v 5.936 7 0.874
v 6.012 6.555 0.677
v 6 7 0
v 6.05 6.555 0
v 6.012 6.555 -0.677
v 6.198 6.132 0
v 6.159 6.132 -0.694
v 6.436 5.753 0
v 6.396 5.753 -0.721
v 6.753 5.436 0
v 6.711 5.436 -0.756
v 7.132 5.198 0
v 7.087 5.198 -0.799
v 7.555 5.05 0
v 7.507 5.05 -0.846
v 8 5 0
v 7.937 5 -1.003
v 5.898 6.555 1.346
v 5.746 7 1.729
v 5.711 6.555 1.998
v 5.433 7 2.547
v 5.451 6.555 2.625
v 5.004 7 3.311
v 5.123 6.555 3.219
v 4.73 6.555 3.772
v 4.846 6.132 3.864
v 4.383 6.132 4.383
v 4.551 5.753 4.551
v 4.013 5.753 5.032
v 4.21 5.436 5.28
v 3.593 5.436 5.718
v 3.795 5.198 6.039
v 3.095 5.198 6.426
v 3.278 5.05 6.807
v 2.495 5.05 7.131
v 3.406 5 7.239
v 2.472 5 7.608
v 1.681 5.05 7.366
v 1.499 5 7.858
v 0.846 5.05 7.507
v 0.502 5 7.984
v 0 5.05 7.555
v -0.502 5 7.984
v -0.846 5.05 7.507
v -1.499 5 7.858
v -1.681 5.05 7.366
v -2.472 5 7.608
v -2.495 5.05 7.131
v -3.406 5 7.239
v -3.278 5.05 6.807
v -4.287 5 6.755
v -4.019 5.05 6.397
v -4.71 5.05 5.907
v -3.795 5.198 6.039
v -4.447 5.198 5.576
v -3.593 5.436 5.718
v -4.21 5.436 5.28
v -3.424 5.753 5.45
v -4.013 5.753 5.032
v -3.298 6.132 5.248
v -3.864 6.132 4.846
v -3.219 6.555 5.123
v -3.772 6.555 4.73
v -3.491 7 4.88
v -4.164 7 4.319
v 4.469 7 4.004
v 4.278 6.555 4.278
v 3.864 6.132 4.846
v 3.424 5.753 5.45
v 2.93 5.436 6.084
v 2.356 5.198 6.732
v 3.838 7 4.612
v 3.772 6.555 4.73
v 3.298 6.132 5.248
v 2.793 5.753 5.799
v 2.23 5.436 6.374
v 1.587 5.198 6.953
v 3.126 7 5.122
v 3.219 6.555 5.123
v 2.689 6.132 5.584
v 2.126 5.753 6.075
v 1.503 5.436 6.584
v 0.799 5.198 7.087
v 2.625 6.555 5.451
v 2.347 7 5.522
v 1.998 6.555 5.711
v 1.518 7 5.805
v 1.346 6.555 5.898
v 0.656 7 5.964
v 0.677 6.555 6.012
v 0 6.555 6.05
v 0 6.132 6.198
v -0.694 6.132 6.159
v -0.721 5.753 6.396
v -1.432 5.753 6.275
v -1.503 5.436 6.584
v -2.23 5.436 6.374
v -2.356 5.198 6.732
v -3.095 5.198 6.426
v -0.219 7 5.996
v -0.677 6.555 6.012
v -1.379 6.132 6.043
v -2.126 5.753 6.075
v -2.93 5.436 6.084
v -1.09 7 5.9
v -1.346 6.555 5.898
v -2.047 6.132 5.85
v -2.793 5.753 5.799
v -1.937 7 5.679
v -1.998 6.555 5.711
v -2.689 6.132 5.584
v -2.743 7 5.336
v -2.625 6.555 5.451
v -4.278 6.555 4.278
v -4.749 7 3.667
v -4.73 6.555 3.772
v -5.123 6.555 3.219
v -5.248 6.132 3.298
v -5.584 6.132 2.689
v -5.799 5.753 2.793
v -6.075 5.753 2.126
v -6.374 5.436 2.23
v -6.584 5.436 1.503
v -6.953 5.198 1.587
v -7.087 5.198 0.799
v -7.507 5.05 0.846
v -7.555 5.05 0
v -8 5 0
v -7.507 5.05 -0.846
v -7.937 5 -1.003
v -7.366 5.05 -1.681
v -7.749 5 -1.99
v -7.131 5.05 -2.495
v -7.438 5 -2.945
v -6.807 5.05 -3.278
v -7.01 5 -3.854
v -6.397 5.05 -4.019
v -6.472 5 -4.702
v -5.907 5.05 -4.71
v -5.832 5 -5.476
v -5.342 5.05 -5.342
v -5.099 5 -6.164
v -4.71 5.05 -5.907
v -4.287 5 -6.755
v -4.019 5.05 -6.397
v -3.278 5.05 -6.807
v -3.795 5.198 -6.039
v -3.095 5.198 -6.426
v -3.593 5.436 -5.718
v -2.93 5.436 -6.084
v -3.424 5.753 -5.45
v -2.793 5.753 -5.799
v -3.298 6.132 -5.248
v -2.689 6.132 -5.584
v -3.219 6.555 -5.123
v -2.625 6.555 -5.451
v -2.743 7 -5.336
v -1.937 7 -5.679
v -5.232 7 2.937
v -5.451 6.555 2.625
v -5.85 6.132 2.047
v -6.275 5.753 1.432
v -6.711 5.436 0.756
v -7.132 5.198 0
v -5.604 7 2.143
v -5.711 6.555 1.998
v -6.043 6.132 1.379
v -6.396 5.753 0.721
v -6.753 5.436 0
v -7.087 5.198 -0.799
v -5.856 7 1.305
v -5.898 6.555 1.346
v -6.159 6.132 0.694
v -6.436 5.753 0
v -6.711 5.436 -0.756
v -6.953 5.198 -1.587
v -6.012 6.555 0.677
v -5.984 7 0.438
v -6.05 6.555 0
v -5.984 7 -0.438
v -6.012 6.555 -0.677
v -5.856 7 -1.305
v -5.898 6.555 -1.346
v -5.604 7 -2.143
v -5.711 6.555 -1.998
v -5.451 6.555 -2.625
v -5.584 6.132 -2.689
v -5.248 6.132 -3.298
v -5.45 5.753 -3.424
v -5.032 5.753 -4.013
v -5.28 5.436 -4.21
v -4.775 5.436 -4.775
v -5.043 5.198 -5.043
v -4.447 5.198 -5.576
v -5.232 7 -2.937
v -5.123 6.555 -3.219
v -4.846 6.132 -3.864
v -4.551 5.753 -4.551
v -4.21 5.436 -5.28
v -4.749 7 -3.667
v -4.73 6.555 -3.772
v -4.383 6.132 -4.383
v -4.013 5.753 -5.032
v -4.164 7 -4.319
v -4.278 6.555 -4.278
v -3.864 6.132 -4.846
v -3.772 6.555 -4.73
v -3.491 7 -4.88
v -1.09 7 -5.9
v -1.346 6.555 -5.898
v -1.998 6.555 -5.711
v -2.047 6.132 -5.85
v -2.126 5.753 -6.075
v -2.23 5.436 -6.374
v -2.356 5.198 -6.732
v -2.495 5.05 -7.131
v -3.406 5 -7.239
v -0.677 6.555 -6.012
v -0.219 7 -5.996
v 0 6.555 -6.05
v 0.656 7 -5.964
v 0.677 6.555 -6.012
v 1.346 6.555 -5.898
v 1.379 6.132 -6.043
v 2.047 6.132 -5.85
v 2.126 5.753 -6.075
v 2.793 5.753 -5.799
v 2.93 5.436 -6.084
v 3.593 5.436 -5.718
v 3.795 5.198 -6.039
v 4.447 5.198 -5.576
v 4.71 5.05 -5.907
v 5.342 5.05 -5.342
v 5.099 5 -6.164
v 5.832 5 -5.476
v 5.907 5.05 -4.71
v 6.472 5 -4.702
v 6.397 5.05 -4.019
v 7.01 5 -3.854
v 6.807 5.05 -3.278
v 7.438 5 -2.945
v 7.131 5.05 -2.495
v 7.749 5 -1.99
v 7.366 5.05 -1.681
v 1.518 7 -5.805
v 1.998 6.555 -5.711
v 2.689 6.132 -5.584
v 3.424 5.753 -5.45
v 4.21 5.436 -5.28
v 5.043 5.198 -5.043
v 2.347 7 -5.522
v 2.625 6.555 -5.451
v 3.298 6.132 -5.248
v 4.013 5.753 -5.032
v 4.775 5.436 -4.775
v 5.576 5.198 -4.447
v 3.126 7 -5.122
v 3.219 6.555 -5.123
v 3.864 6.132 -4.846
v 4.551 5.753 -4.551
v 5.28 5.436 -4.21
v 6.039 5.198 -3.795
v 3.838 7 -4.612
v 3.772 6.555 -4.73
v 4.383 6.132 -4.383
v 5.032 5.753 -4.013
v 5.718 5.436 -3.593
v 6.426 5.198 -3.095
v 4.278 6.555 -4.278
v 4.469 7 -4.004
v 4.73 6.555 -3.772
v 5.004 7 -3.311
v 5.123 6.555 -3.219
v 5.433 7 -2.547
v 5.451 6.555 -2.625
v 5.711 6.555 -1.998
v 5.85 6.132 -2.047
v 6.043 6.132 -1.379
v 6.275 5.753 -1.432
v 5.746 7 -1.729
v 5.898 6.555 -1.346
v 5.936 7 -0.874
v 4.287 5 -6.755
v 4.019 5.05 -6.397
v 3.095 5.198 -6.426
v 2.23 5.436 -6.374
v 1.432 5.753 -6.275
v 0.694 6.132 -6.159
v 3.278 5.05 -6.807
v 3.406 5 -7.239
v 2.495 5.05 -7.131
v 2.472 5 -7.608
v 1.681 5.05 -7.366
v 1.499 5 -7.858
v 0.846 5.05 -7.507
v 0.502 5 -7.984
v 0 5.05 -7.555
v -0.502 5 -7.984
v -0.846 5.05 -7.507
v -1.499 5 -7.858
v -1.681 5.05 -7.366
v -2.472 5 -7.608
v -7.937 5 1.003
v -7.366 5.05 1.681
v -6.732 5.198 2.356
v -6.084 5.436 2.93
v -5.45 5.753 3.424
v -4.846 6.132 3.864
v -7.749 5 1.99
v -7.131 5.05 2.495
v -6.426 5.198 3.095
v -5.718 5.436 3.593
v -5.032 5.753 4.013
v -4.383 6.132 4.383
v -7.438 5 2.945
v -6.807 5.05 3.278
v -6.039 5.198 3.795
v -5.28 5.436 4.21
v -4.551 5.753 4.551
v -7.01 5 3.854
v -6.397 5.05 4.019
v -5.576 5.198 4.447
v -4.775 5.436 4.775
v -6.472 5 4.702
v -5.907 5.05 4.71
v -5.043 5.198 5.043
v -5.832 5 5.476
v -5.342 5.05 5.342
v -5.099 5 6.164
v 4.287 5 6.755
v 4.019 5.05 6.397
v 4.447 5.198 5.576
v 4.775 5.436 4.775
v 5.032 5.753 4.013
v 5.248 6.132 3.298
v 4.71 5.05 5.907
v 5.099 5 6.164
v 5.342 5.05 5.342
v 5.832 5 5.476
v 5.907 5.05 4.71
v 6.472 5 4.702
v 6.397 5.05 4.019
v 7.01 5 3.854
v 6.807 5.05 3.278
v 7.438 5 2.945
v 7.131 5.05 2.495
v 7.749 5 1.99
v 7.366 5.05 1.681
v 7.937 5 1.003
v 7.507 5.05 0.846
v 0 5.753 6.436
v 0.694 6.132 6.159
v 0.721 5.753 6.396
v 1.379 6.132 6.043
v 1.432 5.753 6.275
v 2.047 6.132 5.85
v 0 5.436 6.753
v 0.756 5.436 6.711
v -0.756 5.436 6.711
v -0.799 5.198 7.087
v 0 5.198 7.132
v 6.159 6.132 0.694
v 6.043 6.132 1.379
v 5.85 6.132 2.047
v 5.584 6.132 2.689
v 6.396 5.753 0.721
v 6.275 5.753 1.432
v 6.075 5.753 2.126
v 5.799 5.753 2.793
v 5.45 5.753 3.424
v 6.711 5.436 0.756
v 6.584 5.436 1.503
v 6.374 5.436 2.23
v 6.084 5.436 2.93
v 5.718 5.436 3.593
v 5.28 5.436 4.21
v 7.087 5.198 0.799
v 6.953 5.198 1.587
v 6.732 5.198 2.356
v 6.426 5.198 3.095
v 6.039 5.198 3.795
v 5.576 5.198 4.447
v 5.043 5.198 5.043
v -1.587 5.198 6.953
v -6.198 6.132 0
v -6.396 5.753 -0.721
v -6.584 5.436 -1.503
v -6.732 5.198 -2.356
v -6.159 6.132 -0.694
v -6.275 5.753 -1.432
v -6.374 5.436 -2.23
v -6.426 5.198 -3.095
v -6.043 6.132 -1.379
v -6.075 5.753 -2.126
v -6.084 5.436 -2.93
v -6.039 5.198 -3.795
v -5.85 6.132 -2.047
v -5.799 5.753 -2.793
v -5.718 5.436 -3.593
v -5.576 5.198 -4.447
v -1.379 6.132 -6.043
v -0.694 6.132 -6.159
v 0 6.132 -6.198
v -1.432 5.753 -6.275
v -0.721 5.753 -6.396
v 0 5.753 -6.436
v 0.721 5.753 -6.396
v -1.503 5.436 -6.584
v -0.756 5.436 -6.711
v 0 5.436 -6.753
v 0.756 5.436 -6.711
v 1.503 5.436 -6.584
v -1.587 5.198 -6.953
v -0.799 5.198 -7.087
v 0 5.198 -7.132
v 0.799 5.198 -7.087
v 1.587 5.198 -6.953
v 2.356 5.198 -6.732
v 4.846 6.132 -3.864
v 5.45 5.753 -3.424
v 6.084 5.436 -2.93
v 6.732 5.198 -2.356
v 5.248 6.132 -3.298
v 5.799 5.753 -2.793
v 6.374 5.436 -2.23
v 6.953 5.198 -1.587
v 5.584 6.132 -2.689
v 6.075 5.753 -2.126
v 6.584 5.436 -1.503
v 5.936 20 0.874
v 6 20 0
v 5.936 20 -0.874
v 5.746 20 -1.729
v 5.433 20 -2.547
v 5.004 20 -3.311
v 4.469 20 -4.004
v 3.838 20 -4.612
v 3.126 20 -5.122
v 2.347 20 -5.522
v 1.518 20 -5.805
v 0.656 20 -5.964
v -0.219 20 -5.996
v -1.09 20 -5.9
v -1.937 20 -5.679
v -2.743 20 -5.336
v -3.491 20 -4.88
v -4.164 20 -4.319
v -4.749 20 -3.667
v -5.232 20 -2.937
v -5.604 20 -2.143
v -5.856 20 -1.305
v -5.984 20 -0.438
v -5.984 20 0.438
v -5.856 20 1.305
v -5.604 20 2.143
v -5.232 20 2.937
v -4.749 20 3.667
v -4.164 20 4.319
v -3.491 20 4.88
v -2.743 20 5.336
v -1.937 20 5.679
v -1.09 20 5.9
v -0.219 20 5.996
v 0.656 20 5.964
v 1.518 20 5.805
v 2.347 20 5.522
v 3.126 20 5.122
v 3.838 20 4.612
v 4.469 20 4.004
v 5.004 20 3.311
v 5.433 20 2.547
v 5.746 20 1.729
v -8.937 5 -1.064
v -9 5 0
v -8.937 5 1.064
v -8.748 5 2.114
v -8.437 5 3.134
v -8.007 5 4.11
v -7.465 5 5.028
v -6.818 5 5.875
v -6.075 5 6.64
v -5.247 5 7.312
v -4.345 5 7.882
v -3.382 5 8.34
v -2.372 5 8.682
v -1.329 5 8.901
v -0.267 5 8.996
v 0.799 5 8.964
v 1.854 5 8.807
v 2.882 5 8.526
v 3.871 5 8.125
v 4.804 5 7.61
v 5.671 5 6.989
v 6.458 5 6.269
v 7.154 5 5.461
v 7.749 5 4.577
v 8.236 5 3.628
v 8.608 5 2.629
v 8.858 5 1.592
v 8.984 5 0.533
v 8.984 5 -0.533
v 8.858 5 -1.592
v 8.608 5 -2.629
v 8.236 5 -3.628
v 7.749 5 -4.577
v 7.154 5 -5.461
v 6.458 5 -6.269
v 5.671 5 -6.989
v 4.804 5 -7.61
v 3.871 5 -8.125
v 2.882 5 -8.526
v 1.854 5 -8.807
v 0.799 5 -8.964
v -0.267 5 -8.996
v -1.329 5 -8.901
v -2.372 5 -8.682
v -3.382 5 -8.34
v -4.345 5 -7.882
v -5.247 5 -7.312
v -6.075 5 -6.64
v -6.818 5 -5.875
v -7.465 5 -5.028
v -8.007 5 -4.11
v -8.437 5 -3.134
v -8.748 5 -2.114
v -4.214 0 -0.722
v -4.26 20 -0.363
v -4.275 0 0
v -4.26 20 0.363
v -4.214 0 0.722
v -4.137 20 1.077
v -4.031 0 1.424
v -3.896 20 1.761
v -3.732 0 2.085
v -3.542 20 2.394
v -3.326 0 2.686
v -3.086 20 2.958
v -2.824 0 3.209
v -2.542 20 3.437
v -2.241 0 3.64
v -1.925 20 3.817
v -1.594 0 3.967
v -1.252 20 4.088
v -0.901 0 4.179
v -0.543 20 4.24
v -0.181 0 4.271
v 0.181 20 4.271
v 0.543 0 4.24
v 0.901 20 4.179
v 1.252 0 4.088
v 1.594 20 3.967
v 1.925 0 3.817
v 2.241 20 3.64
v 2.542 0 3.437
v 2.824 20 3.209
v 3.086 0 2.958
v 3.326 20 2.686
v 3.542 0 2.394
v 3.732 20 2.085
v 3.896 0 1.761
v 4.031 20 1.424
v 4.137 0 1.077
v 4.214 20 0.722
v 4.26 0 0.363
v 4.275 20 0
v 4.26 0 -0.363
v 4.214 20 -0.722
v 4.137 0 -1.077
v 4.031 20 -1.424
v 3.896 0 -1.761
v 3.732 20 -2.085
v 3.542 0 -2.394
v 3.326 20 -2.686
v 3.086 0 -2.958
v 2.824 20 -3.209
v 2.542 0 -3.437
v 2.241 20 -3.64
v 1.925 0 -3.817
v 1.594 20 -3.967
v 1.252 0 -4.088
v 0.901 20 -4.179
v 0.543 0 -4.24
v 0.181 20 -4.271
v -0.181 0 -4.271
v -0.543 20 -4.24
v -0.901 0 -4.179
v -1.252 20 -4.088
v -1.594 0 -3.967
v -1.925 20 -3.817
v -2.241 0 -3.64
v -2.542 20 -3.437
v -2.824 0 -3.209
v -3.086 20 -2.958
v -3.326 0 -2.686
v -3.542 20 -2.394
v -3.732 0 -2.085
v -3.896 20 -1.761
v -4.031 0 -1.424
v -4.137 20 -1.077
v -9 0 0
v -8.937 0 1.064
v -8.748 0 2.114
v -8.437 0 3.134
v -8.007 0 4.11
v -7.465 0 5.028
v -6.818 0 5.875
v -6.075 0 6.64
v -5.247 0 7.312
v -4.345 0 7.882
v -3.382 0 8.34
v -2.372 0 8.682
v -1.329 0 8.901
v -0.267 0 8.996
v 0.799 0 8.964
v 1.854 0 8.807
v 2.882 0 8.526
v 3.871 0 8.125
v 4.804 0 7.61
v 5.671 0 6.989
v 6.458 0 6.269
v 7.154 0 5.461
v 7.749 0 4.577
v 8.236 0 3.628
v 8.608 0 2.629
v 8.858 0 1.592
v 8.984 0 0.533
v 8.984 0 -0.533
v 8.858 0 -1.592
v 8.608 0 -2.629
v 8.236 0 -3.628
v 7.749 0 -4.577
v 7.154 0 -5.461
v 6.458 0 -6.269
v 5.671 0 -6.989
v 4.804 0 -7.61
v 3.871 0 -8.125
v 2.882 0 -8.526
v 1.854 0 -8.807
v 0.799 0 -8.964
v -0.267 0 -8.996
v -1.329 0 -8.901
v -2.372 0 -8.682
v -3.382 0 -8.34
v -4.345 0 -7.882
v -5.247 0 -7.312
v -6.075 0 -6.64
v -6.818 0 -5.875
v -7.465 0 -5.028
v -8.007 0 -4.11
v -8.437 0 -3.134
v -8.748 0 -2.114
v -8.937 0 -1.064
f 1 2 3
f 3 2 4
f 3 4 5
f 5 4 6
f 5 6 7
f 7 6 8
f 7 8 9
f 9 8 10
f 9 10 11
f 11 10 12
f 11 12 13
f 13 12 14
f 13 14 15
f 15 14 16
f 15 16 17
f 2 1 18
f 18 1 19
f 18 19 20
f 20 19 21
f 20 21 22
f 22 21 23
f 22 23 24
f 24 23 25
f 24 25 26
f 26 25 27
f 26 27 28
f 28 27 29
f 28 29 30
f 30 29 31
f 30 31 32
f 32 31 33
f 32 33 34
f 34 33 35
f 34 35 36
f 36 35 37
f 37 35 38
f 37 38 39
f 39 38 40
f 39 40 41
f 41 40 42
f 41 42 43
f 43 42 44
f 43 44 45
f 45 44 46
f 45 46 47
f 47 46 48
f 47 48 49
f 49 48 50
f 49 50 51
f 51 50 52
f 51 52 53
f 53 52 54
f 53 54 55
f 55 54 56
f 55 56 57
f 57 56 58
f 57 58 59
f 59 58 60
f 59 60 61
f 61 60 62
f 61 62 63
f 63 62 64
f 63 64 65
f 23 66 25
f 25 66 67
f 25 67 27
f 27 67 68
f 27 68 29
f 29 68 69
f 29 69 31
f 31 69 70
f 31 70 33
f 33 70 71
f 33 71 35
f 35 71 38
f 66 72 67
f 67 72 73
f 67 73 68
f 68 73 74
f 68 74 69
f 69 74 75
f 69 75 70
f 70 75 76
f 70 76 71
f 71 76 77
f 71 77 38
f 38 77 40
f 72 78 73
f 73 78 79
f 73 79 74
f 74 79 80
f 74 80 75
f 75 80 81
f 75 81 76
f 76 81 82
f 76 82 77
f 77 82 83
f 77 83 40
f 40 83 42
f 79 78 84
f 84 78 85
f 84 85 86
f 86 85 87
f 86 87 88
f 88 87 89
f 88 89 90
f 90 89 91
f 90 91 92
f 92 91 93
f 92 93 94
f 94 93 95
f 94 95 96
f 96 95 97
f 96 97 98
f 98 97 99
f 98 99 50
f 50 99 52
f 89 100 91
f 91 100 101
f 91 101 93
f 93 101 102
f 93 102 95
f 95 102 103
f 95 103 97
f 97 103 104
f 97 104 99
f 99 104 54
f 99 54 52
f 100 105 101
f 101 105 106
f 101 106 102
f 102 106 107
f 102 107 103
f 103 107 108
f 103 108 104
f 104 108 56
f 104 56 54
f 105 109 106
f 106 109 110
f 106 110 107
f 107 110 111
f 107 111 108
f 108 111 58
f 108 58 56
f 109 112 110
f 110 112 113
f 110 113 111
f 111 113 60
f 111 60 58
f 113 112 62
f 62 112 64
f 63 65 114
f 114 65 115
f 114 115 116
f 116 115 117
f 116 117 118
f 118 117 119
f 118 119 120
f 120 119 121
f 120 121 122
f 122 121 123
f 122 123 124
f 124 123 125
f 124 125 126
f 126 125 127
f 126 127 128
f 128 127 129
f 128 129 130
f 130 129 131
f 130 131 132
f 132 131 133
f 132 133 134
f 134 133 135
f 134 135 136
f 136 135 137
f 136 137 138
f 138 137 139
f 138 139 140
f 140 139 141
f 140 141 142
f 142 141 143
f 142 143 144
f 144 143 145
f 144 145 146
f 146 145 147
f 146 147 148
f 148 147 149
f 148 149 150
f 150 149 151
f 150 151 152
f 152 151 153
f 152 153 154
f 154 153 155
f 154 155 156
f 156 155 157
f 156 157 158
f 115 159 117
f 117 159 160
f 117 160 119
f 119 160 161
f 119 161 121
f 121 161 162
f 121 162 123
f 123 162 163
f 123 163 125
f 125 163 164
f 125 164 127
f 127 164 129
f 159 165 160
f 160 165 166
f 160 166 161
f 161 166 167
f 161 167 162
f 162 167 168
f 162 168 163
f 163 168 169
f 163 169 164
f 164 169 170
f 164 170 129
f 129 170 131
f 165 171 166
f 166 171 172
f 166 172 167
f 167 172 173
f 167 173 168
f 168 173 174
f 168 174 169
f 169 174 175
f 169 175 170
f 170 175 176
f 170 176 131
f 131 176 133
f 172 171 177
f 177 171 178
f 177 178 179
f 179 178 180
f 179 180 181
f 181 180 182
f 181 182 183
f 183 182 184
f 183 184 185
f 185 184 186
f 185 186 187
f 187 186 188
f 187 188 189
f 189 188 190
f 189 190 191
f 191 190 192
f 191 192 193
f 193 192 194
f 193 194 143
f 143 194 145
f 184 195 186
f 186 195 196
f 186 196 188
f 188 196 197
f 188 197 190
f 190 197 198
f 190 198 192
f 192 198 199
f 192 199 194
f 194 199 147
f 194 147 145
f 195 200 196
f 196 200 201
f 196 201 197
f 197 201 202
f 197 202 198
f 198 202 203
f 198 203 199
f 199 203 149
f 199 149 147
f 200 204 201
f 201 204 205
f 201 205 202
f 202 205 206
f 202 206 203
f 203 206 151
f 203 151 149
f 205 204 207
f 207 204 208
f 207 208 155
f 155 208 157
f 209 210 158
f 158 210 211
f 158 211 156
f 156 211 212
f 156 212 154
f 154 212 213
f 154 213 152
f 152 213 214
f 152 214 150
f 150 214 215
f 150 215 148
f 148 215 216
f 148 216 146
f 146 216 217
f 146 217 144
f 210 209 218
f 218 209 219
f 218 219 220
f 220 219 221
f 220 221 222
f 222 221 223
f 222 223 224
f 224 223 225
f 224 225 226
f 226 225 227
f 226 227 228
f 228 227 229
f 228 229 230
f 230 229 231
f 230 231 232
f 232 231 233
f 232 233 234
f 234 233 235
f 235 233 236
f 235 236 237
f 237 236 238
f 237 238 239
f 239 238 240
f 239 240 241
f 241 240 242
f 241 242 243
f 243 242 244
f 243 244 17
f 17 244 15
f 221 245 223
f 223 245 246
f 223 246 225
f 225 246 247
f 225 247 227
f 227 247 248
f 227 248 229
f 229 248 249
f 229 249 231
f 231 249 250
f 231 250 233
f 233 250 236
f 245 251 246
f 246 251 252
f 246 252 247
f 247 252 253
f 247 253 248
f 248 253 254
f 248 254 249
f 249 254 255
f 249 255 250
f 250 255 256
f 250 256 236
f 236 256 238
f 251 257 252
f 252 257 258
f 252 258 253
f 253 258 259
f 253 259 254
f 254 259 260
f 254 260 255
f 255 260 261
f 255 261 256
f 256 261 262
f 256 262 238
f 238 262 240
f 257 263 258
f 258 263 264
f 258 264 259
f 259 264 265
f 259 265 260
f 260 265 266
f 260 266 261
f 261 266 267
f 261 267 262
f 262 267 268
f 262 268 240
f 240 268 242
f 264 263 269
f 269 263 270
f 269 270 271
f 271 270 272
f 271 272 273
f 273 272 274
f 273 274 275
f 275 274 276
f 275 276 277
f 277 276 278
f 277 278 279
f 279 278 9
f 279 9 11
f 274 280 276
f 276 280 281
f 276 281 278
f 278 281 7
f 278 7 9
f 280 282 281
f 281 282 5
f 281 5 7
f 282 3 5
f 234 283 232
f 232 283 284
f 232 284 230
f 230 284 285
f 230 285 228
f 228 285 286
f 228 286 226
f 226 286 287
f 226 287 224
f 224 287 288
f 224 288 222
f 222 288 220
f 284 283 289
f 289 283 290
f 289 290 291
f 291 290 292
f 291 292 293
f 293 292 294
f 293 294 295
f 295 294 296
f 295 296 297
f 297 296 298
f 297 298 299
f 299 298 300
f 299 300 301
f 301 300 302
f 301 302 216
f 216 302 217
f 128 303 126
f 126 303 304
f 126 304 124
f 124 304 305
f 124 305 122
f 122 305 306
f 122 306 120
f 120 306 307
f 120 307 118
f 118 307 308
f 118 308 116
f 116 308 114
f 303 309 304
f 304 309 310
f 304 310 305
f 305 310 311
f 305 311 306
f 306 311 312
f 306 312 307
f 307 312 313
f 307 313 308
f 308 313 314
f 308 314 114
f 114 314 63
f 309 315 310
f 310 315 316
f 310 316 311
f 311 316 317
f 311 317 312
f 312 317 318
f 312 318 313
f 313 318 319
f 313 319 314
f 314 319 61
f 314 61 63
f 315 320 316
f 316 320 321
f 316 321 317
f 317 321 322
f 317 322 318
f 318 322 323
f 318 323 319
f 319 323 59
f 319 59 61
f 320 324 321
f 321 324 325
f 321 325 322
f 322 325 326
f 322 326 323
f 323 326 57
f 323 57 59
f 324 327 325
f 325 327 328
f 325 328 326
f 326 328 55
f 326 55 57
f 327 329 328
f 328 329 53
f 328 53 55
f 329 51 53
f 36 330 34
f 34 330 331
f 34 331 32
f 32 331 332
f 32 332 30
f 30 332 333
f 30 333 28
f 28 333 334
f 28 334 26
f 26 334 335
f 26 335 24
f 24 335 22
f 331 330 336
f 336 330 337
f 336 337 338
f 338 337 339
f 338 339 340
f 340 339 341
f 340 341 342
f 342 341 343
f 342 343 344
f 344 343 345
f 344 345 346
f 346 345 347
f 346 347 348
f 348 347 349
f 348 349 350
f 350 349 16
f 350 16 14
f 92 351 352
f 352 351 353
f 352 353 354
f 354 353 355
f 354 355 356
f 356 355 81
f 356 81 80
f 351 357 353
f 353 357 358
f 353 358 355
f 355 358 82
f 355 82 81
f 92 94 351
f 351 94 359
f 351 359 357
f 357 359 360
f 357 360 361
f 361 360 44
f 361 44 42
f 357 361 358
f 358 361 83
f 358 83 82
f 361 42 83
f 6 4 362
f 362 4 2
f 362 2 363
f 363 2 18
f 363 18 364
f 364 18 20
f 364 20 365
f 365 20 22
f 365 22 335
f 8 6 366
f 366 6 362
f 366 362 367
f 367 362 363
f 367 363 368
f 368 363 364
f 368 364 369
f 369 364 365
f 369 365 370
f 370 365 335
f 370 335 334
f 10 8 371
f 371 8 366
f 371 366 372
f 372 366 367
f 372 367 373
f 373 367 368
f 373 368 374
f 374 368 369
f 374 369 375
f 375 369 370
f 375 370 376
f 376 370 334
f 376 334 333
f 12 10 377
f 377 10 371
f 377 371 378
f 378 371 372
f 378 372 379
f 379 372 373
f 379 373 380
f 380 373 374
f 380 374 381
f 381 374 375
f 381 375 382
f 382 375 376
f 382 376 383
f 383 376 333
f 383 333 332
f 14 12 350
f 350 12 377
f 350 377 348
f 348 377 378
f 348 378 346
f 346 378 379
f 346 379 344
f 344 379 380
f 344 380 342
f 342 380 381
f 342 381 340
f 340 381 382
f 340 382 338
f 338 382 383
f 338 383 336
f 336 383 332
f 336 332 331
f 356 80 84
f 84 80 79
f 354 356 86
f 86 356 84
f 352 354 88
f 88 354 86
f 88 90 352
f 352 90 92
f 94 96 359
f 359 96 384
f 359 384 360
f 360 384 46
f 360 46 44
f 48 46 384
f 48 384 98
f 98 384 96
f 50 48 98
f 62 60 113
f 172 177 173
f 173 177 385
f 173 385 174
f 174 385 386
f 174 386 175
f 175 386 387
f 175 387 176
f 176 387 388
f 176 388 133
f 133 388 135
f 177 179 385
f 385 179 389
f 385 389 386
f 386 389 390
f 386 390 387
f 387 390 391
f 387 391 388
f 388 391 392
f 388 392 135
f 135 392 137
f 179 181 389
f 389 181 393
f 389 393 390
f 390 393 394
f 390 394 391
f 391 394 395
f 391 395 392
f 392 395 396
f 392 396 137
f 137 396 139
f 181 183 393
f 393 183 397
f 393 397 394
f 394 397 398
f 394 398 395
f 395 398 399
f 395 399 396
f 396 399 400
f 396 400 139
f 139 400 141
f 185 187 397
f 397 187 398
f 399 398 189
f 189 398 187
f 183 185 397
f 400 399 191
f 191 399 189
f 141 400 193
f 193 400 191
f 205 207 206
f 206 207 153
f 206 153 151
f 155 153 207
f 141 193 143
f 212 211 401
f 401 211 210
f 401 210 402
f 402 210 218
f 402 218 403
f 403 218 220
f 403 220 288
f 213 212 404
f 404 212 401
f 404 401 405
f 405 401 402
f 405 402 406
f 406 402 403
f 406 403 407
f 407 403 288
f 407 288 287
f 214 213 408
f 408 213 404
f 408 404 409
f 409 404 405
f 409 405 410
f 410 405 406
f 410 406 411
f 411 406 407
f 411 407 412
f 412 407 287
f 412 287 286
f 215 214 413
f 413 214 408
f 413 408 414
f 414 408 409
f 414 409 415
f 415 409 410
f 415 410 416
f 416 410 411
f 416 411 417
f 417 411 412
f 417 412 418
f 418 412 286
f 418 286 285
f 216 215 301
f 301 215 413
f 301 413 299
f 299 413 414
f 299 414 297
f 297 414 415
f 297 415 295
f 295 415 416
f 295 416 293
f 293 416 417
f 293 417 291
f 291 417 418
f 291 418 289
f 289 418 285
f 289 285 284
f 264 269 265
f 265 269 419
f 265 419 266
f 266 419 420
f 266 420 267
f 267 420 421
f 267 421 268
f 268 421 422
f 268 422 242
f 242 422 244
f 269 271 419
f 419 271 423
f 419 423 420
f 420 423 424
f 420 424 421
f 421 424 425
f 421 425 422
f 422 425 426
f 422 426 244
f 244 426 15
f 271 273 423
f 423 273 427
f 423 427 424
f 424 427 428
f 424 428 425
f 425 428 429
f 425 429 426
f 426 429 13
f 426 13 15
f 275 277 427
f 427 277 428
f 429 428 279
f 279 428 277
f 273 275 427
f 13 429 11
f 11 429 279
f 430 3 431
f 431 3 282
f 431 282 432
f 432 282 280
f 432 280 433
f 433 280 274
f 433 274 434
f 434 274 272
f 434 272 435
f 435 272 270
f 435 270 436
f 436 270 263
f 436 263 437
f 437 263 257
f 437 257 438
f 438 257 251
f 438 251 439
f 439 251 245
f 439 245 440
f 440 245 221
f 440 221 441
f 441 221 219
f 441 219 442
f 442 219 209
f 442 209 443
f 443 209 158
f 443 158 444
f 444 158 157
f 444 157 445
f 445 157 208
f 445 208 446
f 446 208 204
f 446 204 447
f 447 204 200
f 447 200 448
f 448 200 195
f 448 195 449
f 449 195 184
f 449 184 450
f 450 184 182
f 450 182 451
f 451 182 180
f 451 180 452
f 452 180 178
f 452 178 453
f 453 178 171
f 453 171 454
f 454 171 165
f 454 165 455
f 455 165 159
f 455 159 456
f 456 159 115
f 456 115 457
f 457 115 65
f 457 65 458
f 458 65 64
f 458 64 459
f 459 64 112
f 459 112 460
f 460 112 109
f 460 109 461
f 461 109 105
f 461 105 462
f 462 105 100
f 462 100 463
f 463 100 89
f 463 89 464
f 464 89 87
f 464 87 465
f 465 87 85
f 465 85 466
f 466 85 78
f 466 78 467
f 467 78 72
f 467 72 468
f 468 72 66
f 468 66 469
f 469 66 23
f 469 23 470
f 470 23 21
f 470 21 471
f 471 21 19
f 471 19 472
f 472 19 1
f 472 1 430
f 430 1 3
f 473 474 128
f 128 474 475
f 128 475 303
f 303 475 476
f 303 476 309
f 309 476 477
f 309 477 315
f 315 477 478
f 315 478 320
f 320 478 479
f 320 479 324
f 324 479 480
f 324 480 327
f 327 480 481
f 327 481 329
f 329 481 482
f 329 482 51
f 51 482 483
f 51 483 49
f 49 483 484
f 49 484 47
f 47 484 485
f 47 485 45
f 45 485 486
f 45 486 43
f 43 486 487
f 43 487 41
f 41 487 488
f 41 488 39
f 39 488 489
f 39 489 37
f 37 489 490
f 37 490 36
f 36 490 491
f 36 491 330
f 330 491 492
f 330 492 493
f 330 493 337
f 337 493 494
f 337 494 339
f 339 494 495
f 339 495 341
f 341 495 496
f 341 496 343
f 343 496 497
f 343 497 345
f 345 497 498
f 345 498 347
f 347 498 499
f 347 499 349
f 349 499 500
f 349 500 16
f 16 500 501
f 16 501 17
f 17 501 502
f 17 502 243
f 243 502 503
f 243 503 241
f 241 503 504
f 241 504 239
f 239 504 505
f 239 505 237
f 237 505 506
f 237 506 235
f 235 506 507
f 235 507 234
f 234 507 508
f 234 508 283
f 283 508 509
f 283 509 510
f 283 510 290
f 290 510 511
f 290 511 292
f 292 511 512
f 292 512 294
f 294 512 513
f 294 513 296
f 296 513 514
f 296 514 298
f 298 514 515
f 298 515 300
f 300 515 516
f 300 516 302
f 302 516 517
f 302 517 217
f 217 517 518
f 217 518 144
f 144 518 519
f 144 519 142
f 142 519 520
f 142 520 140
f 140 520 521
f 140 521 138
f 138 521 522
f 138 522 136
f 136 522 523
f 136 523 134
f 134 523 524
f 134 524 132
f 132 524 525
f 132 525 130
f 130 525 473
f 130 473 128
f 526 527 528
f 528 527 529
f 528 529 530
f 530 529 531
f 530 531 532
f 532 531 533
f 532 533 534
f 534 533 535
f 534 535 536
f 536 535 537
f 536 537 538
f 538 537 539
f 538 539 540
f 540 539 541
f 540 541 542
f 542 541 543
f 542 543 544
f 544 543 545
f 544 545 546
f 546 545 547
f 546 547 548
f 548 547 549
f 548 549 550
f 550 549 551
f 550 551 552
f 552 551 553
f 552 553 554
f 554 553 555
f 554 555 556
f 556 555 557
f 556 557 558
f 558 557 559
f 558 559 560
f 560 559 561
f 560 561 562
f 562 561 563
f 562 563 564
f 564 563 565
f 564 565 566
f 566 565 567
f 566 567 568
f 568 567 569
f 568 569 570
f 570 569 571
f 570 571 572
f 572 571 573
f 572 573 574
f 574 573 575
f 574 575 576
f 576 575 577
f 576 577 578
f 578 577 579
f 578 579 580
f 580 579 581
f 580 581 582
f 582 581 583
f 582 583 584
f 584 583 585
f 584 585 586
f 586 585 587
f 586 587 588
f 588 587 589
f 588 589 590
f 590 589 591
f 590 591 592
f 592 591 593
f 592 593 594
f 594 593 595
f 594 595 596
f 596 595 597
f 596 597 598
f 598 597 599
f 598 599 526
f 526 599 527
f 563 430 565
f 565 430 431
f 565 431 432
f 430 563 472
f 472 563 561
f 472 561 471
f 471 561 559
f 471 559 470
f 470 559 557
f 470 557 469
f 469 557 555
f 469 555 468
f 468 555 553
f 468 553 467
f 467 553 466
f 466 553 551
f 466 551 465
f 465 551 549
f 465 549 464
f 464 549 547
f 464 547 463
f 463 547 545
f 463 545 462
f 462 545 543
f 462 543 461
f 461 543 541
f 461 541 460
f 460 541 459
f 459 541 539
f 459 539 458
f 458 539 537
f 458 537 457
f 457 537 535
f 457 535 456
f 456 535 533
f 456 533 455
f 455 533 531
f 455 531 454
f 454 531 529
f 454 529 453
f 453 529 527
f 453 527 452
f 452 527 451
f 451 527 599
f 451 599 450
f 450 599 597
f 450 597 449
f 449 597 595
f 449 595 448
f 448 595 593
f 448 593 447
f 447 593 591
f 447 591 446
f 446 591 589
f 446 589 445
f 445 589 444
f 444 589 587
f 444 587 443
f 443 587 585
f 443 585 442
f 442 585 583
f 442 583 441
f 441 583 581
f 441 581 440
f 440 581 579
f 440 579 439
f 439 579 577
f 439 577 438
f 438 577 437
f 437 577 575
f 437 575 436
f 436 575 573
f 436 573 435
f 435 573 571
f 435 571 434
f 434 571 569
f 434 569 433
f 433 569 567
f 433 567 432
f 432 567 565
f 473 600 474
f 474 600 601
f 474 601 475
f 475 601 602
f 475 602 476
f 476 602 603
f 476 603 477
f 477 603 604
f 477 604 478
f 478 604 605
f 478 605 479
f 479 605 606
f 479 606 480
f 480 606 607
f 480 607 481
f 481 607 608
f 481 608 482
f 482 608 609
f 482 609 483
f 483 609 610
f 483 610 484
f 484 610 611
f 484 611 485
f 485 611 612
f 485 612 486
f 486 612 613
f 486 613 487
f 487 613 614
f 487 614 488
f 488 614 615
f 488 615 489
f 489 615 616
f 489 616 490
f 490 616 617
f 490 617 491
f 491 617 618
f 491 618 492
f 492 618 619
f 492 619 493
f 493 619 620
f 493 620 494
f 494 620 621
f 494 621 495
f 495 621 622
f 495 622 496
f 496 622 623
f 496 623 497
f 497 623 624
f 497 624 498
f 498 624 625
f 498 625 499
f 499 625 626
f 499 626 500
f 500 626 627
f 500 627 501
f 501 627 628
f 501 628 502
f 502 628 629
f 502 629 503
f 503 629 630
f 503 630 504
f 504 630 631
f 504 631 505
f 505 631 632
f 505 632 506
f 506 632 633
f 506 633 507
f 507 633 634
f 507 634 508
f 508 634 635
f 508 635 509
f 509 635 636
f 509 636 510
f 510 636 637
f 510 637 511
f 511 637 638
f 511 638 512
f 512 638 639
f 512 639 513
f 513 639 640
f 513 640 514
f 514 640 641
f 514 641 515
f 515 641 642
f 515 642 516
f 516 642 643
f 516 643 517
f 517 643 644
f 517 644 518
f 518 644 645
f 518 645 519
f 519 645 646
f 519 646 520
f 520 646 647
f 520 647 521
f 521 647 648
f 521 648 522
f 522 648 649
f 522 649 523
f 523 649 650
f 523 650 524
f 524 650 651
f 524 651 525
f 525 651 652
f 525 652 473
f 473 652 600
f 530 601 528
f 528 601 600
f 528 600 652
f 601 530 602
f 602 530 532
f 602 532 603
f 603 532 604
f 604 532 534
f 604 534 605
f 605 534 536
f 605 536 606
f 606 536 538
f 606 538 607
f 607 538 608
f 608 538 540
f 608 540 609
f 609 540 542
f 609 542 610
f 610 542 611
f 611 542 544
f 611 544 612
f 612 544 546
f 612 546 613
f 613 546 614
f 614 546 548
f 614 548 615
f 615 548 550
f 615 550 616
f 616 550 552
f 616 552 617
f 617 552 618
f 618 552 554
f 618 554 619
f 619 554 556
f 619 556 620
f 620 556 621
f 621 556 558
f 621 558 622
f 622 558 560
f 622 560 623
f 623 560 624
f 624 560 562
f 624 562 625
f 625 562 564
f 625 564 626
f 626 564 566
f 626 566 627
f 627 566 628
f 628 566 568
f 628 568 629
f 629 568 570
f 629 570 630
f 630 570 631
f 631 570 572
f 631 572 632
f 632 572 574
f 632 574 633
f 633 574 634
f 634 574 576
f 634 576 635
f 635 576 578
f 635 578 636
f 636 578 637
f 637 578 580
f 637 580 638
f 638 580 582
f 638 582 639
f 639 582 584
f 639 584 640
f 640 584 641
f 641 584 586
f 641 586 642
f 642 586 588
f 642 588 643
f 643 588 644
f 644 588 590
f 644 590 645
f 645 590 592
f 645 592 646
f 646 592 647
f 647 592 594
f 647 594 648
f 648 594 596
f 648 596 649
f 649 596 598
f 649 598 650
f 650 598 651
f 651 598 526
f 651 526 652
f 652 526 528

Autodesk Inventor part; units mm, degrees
ref_plane "YZ Plane" through (0, 0, 0) normal (1, 0, 0) x (0, 1, 0)
ref_plane "XZ Plane" through (0, 0, 0) normal (0, 1, 0) x (-1, 0, 0)
ref_plane "XY Plane" through (0, 0, 0) normal (0, 0, 1) x (1, 0, 0)
sketch "Esboço1" plane through (0, 0, 0) normal (0, 1, 0) x (-1, 0, 0)
  circle A0 centre (0, 0) radius 9
  dimension "d0" = 18
extrude "Extrusão1" add sketch "Esboço1" along normal blind 5
sketch "Esboço2" plane through (0, 5, 0) normal (0, 1, 0) x (1, 0, 0)
  circle A0 centre (0, 0) radius 6
  dimension "d3" = 12
extrude "Extrusão2" add sketch "Esboço2" along normal blind 15
sketch "Esboço3" plane through (0, 20, 0) normal (0, 1, 0) x (1, 0, 0)
  point P0 (0, 0)
sketch "Esboço4" plane through (0, 20, 0) normal (0, 1, 0) x (1, 0, 0)
  circle A0 centre (0, 0) radius 4.275
  dimension "d6" = 8.55
extrude "Extrusão3" cut sketch "Esboço4" against normal through all
fillet "Arredondamento1" radius 2 1 edges at (-6, 5, 0)
properties part number "Espaçadores"
